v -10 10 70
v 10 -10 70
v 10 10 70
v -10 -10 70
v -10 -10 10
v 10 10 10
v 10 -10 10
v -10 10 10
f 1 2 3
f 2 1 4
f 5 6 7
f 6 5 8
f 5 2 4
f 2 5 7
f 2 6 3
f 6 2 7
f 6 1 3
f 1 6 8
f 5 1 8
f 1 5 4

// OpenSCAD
// 简易多零件流程测试：20 x 20 x 60 立柱，坐在底板上
translate([-10,-10,10]) cube([20,20,60]);
